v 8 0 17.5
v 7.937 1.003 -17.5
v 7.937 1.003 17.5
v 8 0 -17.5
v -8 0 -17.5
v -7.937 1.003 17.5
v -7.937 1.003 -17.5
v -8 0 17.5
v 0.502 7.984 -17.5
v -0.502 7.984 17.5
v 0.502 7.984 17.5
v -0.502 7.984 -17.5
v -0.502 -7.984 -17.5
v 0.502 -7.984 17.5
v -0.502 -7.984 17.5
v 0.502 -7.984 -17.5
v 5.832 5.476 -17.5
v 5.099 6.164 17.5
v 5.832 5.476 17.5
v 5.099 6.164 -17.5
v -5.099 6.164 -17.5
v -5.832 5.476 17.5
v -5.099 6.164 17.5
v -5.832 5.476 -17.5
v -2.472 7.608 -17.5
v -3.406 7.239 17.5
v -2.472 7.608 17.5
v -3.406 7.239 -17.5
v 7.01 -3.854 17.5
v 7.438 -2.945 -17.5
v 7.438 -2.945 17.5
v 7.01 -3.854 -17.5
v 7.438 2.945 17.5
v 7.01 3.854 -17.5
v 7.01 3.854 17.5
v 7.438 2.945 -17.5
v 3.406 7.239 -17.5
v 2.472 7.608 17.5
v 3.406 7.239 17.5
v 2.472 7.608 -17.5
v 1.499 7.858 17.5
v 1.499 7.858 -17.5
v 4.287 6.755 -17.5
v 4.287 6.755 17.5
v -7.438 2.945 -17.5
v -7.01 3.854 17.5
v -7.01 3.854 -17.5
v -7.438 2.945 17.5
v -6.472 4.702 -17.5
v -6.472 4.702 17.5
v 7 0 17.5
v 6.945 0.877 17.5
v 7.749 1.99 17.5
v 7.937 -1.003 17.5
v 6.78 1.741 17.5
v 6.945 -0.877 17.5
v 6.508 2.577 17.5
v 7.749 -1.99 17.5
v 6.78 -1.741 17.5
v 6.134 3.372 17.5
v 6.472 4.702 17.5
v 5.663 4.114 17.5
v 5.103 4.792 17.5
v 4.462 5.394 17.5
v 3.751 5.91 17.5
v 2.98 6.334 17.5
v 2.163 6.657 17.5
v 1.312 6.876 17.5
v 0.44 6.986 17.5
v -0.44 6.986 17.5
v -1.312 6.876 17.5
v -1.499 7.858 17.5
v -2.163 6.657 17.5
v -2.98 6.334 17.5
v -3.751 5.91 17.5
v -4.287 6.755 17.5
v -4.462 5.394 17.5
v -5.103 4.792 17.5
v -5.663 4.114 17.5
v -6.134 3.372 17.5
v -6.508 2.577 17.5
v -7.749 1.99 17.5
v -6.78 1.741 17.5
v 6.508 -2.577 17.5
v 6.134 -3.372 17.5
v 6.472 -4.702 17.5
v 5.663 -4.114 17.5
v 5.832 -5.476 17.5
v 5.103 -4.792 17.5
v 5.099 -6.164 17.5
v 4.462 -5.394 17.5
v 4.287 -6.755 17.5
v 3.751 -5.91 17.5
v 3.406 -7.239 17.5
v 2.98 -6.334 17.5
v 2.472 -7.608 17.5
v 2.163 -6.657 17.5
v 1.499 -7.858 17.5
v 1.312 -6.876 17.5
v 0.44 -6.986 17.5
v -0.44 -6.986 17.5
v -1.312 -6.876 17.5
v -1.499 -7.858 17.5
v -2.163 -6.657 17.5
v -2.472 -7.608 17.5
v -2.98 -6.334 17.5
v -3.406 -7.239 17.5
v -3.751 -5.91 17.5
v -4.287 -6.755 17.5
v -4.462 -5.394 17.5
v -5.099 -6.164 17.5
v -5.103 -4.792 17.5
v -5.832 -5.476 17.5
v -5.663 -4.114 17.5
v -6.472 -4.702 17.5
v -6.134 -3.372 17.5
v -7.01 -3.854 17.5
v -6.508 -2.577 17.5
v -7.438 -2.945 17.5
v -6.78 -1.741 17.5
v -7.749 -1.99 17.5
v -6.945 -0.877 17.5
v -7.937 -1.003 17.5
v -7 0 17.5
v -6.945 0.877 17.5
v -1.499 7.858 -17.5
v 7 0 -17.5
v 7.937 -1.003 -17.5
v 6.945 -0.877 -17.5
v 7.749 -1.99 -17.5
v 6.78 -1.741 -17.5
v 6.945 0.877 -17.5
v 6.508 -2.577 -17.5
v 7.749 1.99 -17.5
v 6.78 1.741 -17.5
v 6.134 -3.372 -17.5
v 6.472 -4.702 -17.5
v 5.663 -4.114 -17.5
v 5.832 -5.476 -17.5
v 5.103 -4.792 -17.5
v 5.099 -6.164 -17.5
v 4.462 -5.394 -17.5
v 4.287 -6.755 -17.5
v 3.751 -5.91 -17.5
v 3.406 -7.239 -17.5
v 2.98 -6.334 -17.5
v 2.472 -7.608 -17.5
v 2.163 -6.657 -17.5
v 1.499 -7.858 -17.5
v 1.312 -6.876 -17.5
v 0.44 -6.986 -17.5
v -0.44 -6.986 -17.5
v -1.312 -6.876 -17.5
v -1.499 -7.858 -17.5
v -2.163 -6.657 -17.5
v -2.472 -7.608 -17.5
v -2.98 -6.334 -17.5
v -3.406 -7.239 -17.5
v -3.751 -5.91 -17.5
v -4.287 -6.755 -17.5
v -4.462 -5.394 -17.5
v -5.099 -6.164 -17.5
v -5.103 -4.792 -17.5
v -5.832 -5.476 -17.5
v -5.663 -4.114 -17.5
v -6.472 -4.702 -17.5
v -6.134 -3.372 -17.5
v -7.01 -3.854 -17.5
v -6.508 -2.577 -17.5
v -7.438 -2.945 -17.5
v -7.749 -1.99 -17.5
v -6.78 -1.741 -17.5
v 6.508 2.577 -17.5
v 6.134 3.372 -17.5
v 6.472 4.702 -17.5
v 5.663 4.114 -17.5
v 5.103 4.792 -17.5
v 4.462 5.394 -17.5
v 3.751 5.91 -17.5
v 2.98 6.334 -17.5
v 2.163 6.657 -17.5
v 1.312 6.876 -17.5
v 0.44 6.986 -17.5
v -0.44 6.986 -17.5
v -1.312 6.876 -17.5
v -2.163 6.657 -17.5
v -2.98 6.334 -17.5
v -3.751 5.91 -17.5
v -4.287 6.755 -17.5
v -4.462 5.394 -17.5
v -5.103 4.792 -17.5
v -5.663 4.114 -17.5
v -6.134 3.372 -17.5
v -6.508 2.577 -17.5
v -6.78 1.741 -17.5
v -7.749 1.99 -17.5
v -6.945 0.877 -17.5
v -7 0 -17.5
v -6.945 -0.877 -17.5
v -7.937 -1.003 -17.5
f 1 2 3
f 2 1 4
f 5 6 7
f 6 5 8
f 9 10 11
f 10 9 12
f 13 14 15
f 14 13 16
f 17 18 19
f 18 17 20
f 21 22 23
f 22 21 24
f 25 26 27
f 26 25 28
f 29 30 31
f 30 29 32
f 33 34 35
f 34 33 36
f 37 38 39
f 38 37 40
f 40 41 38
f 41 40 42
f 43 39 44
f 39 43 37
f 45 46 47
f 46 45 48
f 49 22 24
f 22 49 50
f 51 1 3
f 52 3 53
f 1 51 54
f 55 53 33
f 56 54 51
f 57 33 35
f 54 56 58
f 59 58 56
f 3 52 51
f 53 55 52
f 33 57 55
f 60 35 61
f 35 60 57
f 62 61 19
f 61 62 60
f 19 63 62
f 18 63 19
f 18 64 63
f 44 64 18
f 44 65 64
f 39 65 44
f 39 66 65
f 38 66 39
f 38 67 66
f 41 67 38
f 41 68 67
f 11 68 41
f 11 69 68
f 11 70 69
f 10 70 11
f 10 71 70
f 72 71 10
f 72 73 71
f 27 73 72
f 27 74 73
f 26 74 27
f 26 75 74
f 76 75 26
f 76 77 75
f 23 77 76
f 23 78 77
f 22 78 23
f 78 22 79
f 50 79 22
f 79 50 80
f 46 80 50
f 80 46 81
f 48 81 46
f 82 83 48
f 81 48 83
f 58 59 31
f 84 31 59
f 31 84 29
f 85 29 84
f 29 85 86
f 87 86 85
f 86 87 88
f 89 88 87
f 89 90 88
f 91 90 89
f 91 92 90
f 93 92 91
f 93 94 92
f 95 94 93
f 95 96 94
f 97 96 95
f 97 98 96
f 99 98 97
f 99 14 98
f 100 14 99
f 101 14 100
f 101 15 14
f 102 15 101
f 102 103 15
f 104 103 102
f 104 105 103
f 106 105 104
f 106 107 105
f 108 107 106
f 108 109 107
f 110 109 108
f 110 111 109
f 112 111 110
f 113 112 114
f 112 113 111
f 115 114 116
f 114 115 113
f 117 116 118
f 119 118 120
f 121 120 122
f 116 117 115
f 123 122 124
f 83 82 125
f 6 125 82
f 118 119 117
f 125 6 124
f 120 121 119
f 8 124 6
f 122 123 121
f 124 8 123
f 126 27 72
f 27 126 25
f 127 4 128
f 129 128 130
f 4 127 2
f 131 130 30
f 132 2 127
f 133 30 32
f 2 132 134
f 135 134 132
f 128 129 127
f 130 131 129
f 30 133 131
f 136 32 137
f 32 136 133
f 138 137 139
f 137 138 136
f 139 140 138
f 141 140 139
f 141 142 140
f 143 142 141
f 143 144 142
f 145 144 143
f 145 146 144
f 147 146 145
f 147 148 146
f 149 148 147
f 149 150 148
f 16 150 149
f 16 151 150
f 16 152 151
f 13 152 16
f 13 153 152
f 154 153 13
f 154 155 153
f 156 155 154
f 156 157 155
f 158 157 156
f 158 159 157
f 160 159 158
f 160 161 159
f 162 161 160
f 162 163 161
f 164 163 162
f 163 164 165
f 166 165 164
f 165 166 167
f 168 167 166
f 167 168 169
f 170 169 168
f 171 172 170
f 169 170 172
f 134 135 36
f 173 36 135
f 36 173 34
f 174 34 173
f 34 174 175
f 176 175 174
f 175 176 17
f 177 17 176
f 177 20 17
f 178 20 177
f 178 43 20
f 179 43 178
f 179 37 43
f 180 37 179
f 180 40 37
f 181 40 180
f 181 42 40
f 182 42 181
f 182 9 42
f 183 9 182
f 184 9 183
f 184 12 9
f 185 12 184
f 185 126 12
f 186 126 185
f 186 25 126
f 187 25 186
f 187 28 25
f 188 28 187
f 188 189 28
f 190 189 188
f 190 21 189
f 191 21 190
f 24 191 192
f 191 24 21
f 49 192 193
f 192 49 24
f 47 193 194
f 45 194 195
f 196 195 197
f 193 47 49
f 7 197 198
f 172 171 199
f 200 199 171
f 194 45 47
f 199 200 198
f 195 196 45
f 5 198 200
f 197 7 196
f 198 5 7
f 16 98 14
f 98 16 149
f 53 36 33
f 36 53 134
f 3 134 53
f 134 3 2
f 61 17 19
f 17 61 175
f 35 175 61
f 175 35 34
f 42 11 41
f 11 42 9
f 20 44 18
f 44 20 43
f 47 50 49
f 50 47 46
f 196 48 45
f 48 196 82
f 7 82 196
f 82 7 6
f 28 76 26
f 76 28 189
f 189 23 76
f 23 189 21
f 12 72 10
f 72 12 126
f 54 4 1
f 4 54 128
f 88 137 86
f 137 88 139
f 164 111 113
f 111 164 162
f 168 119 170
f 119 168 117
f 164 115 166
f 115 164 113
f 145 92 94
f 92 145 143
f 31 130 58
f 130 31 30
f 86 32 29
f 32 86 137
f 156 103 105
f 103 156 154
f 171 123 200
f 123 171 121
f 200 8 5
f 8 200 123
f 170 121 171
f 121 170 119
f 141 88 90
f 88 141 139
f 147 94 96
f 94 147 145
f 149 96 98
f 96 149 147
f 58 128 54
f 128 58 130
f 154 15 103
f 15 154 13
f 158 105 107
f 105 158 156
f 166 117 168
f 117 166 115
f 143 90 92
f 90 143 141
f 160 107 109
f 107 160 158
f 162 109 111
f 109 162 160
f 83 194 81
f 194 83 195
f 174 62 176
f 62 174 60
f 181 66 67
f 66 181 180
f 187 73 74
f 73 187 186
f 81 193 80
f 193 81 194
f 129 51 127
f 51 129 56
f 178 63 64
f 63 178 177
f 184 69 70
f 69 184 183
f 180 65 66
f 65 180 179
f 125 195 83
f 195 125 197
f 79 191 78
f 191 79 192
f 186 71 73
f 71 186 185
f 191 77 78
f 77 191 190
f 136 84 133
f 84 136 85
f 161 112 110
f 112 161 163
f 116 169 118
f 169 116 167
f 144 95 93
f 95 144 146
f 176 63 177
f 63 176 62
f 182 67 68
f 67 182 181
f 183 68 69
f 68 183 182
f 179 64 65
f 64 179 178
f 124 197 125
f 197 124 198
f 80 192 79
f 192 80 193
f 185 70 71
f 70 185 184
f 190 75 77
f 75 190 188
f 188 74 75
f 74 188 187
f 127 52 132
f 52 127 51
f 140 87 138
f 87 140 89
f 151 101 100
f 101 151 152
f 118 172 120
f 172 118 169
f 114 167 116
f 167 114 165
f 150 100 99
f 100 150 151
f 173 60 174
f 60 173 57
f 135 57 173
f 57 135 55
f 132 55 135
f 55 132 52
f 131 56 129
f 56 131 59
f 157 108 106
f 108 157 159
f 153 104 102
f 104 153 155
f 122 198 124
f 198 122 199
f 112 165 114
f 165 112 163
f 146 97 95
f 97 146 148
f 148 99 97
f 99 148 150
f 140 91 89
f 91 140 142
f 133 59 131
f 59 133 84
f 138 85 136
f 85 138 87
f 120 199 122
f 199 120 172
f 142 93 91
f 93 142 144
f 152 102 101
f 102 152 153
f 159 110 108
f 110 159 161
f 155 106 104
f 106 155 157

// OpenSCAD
$fn = 50;


difference() {
	union() {
		translate(v = [0, 0, -17.5000000000]) {
			cylinder(h = 35, r = 8.0000000000);
		}
	}
	union() {
		translate(v = [0, 0, -100.0000000000]) {
			cylinder(h = 200, r = 7);
		}
	}
}
